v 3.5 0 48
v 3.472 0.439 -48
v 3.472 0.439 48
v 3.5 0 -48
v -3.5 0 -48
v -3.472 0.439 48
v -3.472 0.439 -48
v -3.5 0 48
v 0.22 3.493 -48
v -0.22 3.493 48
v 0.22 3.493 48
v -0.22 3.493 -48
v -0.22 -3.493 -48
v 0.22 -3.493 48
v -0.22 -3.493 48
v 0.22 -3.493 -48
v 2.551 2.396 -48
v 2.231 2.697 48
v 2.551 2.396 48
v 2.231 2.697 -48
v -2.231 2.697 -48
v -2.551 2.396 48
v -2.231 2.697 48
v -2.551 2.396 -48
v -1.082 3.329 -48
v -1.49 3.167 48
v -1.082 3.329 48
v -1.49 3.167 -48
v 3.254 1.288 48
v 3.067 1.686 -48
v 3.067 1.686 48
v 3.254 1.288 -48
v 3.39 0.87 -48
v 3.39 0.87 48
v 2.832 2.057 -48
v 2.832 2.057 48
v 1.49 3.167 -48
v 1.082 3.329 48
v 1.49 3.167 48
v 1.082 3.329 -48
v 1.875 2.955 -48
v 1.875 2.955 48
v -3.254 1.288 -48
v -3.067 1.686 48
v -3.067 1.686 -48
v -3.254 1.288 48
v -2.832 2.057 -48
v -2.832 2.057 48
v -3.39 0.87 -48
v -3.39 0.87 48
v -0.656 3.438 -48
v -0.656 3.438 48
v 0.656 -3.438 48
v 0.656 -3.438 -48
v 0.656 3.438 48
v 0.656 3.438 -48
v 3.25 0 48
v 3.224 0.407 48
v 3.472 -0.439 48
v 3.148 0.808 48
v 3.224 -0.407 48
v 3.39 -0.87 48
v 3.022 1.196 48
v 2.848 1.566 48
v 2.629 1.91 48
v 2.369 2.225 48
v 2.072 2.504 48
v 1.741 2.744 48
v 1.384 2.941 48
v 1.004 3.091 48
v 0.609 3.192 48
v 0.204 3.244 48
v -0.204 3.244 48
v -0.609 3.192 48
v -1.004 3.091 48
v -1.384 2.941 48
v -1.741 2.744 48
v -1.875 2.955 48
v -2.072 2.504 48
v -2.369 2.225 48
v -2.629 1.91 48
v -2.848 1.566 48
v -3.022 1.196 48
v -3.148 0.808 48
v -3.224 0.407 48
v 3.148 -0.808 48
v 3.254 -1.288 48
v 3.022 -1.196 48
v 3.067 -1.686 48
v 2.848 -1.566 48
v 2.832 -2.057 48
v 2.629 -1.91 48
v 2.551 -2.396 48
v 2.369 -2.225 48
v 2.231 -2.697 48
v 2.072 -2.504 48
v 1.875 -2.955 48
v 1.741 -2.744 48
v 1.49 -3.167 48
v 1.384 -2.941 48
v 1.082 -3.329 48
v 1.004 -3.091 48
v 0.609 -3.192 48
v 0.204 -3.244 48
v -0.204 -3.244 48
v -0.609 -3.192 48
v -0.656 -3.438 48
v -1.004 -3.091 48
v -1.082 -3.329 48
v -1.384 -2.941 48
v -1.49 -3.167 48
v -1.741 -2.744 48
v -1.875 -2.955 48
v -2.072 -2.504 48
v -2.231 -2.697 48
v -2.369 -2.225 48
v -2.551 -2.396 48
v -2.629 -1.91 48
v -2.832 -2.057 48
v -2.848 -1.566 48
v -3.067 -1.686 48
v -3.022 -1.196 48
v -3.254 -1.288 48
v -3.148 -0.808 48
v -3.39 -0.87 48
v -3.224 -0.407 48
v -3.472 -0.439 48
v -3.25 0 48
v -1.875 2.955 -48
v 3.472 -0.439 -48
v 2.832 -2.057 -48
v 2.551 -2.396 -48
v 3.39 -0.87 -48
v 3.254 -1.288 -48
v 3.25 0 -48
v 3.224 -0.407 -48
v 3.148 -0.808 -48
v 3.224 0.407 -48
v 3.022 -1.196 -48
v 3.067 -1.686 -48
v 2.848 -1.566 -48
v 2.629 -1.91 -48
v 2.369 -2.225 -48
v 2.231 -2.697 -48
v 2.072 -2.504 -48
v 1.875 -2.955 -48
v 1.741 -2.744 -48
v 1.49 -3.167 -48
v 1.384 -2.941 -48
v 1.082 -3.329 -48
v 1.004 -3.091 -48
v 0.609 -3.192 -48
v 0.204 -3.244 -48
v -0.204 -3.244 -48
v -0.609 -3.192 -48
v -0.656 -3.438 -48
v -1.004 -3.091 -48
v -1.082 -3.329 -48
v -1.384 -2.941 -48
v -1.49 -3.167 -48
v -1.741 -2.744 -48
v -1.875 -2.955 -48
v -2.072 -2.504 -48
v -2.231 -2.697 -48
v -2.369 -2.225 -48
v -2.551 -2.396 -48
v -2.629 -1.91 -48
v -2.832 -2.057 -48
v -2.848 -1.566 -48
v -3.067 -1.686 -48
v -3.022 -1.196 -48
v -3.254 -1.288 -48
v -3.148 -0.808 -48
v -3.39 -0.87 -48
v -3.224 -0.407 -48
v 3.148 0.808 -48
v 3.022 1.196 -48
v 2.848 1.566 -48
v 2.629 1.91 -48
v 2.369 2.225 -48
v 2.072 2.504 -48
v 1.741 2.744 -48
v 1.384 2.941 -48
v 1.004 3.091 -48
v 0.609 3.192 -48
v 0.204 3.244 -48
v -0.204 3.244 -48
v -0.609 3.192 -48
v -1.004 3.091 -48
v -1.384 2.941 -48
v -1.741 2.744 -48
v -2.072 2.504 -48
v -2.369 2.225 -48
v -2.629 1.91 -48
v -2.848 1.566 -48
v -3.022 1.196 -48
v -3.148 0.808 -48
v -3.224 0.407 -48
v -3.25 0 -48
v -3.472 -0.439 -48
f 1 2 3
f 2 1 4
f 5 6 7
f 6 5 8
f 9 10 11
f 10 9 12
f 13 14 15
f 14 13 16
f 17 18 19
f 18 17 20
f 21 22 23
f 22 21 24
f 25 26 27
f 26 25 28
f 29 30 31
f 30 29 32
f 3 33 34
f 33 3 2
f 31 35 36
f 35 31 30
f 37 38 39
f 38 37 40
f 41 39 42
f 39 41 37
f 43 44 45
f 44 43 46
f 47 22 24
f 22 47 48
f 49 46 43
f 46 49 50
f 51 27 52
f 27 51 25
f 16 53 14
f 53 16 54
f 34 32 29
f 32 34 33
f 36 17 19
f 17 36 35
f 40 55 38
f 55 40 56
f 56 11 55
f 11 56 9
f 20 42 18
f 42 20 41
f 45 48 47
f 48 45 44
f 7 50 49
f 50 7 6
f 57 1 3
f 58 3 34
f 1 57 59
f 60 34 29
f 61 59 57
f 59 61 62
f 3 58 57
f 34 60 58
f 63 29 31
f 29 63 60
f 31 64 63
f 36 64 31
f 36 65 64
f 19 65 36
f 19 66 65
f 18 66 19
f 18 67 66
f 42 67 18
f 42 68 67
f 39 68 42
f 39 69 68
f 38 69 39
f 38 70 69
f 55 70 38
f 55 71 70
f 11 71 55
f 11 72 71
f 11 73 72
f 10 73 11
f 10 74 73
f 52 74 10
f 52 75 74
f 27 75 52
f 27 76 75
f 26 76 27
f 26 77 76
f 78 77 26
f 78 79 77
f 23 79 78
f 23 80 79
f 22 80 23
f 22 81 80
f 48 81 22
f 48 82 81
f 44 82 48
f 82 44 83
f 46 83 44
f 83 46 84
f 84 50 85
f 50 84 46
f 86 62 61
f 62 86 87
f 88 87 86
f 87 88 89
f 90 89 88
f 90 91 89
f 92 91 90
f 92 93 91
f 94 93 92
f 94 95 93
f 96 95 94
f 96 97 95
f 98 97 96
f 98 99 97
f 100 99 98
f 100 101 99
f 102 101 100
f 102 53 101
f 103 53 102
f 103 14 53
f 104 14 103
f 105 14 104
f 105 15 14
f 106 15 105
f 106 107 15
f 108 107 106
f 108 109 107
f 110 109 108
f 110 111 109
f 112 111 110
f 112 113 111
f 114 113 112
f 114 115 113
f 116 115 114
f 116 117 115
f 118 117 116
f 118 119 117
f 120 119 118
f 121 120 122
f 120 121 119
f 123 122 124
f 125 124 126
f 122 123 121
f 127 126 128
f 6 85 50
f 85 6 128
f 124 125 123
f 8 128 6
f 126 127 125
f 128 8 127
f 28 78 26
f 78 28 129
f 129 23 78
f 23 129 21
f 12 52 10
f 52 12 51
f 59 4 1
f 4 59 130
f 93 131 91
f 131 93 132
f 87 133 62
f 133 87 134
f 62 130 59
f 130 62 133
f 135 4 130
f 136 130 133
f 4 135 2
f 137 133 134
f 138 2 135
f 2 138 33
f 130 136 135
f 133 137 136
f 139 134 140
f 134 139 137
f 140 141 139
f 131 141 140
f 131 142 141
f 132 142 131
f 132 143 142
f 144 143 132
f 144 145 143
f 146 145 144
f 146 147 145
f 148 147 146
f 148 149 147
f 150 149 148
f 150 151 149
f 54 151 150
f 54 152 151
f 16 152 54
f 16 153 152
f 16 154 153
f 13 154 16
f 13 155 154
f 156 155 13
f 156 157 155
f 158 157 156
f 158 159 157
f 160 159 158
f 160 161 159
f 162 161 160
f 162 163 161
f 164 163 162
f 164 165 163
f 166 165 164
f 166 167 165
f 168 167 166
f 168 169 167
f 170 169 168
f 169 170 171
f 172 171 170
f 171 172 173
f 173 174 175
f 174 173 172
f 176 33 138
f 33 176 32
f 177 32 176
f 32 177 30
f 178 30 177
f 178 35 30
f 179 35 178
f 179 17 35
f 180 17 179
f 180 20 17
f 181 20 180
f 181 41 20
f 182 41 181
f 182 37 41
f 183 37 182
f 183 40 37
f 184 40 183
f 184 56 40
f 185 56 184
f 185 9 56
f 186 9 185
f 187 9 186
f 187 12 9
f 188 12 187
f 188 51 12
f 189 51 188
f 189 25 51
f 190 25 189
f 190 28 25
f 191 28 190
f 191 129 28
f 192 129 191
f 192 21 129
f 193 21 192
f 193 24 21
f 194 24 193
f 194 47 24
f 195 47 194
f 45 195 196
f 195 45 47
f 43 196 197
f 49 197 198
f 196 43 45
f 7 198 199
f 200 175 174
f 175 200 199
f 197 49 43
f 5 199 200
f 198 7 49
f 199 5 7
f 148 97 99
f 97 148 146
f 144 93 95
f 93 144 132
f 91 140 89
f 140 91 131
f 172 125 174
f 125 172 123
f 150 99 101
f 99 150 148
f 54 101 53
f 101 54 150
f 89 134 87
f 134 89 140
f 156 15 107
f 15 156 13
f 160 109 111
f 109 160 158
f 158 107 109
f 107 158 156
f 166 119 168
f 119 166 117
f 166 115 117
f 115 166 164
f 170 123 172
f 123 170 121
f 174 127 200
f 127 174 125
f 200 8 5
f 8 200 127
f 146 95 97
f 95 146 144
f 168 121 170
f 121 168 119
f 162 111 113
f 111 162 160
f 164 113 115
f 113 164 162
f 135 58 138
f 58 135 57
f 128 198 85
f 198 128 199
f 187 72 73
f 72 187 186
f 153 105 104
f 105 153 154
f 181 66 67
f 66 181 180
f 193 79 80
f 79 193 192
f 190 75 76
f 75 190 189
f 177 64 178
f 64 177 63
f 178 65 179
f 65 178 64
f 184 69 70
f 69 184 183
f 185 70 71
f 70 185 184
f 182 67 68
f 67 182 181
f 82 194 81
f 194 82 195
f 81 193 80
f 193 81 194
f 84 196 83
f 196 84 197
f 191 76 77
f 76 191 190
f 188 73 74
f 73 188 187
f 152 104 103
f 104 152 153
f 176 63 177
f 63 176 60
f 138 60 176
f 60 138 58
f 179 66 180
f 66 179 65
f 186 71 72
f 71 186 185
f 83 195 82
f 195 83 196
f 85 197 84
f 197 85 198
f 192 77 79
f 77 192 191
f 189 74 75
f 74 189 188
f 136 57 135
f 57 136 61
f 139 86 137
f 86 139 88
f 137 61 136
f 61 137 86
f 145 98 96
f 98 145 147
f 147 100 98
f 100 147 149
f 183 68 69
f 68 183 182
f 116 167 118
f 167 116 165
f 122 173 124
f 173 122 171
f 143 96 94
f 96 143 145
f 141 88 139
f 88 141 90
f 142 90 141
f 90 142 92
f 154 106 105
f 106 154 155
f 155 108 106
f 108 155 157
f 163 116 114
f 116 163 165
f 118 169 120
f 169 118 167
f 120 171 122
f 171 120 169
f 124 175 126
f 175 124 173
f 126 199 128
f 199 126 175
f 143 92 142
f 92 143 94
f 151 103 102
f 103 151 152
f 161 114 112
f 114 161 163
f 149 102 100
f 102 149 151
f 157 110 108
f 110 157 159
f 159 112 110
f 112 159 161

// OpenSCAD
$fn = 50;


difference() {
	union() {
		translate(v = [0, 0, -48.0000000000]) {
			cylinder(h = 96, r = 3.5000000000);
		}
	}
	union() {
		translate(v = [0, 0, -100.0000000000]) {
			cylinder(h = 200, r = 3.2500000000);
		}
	}
}
